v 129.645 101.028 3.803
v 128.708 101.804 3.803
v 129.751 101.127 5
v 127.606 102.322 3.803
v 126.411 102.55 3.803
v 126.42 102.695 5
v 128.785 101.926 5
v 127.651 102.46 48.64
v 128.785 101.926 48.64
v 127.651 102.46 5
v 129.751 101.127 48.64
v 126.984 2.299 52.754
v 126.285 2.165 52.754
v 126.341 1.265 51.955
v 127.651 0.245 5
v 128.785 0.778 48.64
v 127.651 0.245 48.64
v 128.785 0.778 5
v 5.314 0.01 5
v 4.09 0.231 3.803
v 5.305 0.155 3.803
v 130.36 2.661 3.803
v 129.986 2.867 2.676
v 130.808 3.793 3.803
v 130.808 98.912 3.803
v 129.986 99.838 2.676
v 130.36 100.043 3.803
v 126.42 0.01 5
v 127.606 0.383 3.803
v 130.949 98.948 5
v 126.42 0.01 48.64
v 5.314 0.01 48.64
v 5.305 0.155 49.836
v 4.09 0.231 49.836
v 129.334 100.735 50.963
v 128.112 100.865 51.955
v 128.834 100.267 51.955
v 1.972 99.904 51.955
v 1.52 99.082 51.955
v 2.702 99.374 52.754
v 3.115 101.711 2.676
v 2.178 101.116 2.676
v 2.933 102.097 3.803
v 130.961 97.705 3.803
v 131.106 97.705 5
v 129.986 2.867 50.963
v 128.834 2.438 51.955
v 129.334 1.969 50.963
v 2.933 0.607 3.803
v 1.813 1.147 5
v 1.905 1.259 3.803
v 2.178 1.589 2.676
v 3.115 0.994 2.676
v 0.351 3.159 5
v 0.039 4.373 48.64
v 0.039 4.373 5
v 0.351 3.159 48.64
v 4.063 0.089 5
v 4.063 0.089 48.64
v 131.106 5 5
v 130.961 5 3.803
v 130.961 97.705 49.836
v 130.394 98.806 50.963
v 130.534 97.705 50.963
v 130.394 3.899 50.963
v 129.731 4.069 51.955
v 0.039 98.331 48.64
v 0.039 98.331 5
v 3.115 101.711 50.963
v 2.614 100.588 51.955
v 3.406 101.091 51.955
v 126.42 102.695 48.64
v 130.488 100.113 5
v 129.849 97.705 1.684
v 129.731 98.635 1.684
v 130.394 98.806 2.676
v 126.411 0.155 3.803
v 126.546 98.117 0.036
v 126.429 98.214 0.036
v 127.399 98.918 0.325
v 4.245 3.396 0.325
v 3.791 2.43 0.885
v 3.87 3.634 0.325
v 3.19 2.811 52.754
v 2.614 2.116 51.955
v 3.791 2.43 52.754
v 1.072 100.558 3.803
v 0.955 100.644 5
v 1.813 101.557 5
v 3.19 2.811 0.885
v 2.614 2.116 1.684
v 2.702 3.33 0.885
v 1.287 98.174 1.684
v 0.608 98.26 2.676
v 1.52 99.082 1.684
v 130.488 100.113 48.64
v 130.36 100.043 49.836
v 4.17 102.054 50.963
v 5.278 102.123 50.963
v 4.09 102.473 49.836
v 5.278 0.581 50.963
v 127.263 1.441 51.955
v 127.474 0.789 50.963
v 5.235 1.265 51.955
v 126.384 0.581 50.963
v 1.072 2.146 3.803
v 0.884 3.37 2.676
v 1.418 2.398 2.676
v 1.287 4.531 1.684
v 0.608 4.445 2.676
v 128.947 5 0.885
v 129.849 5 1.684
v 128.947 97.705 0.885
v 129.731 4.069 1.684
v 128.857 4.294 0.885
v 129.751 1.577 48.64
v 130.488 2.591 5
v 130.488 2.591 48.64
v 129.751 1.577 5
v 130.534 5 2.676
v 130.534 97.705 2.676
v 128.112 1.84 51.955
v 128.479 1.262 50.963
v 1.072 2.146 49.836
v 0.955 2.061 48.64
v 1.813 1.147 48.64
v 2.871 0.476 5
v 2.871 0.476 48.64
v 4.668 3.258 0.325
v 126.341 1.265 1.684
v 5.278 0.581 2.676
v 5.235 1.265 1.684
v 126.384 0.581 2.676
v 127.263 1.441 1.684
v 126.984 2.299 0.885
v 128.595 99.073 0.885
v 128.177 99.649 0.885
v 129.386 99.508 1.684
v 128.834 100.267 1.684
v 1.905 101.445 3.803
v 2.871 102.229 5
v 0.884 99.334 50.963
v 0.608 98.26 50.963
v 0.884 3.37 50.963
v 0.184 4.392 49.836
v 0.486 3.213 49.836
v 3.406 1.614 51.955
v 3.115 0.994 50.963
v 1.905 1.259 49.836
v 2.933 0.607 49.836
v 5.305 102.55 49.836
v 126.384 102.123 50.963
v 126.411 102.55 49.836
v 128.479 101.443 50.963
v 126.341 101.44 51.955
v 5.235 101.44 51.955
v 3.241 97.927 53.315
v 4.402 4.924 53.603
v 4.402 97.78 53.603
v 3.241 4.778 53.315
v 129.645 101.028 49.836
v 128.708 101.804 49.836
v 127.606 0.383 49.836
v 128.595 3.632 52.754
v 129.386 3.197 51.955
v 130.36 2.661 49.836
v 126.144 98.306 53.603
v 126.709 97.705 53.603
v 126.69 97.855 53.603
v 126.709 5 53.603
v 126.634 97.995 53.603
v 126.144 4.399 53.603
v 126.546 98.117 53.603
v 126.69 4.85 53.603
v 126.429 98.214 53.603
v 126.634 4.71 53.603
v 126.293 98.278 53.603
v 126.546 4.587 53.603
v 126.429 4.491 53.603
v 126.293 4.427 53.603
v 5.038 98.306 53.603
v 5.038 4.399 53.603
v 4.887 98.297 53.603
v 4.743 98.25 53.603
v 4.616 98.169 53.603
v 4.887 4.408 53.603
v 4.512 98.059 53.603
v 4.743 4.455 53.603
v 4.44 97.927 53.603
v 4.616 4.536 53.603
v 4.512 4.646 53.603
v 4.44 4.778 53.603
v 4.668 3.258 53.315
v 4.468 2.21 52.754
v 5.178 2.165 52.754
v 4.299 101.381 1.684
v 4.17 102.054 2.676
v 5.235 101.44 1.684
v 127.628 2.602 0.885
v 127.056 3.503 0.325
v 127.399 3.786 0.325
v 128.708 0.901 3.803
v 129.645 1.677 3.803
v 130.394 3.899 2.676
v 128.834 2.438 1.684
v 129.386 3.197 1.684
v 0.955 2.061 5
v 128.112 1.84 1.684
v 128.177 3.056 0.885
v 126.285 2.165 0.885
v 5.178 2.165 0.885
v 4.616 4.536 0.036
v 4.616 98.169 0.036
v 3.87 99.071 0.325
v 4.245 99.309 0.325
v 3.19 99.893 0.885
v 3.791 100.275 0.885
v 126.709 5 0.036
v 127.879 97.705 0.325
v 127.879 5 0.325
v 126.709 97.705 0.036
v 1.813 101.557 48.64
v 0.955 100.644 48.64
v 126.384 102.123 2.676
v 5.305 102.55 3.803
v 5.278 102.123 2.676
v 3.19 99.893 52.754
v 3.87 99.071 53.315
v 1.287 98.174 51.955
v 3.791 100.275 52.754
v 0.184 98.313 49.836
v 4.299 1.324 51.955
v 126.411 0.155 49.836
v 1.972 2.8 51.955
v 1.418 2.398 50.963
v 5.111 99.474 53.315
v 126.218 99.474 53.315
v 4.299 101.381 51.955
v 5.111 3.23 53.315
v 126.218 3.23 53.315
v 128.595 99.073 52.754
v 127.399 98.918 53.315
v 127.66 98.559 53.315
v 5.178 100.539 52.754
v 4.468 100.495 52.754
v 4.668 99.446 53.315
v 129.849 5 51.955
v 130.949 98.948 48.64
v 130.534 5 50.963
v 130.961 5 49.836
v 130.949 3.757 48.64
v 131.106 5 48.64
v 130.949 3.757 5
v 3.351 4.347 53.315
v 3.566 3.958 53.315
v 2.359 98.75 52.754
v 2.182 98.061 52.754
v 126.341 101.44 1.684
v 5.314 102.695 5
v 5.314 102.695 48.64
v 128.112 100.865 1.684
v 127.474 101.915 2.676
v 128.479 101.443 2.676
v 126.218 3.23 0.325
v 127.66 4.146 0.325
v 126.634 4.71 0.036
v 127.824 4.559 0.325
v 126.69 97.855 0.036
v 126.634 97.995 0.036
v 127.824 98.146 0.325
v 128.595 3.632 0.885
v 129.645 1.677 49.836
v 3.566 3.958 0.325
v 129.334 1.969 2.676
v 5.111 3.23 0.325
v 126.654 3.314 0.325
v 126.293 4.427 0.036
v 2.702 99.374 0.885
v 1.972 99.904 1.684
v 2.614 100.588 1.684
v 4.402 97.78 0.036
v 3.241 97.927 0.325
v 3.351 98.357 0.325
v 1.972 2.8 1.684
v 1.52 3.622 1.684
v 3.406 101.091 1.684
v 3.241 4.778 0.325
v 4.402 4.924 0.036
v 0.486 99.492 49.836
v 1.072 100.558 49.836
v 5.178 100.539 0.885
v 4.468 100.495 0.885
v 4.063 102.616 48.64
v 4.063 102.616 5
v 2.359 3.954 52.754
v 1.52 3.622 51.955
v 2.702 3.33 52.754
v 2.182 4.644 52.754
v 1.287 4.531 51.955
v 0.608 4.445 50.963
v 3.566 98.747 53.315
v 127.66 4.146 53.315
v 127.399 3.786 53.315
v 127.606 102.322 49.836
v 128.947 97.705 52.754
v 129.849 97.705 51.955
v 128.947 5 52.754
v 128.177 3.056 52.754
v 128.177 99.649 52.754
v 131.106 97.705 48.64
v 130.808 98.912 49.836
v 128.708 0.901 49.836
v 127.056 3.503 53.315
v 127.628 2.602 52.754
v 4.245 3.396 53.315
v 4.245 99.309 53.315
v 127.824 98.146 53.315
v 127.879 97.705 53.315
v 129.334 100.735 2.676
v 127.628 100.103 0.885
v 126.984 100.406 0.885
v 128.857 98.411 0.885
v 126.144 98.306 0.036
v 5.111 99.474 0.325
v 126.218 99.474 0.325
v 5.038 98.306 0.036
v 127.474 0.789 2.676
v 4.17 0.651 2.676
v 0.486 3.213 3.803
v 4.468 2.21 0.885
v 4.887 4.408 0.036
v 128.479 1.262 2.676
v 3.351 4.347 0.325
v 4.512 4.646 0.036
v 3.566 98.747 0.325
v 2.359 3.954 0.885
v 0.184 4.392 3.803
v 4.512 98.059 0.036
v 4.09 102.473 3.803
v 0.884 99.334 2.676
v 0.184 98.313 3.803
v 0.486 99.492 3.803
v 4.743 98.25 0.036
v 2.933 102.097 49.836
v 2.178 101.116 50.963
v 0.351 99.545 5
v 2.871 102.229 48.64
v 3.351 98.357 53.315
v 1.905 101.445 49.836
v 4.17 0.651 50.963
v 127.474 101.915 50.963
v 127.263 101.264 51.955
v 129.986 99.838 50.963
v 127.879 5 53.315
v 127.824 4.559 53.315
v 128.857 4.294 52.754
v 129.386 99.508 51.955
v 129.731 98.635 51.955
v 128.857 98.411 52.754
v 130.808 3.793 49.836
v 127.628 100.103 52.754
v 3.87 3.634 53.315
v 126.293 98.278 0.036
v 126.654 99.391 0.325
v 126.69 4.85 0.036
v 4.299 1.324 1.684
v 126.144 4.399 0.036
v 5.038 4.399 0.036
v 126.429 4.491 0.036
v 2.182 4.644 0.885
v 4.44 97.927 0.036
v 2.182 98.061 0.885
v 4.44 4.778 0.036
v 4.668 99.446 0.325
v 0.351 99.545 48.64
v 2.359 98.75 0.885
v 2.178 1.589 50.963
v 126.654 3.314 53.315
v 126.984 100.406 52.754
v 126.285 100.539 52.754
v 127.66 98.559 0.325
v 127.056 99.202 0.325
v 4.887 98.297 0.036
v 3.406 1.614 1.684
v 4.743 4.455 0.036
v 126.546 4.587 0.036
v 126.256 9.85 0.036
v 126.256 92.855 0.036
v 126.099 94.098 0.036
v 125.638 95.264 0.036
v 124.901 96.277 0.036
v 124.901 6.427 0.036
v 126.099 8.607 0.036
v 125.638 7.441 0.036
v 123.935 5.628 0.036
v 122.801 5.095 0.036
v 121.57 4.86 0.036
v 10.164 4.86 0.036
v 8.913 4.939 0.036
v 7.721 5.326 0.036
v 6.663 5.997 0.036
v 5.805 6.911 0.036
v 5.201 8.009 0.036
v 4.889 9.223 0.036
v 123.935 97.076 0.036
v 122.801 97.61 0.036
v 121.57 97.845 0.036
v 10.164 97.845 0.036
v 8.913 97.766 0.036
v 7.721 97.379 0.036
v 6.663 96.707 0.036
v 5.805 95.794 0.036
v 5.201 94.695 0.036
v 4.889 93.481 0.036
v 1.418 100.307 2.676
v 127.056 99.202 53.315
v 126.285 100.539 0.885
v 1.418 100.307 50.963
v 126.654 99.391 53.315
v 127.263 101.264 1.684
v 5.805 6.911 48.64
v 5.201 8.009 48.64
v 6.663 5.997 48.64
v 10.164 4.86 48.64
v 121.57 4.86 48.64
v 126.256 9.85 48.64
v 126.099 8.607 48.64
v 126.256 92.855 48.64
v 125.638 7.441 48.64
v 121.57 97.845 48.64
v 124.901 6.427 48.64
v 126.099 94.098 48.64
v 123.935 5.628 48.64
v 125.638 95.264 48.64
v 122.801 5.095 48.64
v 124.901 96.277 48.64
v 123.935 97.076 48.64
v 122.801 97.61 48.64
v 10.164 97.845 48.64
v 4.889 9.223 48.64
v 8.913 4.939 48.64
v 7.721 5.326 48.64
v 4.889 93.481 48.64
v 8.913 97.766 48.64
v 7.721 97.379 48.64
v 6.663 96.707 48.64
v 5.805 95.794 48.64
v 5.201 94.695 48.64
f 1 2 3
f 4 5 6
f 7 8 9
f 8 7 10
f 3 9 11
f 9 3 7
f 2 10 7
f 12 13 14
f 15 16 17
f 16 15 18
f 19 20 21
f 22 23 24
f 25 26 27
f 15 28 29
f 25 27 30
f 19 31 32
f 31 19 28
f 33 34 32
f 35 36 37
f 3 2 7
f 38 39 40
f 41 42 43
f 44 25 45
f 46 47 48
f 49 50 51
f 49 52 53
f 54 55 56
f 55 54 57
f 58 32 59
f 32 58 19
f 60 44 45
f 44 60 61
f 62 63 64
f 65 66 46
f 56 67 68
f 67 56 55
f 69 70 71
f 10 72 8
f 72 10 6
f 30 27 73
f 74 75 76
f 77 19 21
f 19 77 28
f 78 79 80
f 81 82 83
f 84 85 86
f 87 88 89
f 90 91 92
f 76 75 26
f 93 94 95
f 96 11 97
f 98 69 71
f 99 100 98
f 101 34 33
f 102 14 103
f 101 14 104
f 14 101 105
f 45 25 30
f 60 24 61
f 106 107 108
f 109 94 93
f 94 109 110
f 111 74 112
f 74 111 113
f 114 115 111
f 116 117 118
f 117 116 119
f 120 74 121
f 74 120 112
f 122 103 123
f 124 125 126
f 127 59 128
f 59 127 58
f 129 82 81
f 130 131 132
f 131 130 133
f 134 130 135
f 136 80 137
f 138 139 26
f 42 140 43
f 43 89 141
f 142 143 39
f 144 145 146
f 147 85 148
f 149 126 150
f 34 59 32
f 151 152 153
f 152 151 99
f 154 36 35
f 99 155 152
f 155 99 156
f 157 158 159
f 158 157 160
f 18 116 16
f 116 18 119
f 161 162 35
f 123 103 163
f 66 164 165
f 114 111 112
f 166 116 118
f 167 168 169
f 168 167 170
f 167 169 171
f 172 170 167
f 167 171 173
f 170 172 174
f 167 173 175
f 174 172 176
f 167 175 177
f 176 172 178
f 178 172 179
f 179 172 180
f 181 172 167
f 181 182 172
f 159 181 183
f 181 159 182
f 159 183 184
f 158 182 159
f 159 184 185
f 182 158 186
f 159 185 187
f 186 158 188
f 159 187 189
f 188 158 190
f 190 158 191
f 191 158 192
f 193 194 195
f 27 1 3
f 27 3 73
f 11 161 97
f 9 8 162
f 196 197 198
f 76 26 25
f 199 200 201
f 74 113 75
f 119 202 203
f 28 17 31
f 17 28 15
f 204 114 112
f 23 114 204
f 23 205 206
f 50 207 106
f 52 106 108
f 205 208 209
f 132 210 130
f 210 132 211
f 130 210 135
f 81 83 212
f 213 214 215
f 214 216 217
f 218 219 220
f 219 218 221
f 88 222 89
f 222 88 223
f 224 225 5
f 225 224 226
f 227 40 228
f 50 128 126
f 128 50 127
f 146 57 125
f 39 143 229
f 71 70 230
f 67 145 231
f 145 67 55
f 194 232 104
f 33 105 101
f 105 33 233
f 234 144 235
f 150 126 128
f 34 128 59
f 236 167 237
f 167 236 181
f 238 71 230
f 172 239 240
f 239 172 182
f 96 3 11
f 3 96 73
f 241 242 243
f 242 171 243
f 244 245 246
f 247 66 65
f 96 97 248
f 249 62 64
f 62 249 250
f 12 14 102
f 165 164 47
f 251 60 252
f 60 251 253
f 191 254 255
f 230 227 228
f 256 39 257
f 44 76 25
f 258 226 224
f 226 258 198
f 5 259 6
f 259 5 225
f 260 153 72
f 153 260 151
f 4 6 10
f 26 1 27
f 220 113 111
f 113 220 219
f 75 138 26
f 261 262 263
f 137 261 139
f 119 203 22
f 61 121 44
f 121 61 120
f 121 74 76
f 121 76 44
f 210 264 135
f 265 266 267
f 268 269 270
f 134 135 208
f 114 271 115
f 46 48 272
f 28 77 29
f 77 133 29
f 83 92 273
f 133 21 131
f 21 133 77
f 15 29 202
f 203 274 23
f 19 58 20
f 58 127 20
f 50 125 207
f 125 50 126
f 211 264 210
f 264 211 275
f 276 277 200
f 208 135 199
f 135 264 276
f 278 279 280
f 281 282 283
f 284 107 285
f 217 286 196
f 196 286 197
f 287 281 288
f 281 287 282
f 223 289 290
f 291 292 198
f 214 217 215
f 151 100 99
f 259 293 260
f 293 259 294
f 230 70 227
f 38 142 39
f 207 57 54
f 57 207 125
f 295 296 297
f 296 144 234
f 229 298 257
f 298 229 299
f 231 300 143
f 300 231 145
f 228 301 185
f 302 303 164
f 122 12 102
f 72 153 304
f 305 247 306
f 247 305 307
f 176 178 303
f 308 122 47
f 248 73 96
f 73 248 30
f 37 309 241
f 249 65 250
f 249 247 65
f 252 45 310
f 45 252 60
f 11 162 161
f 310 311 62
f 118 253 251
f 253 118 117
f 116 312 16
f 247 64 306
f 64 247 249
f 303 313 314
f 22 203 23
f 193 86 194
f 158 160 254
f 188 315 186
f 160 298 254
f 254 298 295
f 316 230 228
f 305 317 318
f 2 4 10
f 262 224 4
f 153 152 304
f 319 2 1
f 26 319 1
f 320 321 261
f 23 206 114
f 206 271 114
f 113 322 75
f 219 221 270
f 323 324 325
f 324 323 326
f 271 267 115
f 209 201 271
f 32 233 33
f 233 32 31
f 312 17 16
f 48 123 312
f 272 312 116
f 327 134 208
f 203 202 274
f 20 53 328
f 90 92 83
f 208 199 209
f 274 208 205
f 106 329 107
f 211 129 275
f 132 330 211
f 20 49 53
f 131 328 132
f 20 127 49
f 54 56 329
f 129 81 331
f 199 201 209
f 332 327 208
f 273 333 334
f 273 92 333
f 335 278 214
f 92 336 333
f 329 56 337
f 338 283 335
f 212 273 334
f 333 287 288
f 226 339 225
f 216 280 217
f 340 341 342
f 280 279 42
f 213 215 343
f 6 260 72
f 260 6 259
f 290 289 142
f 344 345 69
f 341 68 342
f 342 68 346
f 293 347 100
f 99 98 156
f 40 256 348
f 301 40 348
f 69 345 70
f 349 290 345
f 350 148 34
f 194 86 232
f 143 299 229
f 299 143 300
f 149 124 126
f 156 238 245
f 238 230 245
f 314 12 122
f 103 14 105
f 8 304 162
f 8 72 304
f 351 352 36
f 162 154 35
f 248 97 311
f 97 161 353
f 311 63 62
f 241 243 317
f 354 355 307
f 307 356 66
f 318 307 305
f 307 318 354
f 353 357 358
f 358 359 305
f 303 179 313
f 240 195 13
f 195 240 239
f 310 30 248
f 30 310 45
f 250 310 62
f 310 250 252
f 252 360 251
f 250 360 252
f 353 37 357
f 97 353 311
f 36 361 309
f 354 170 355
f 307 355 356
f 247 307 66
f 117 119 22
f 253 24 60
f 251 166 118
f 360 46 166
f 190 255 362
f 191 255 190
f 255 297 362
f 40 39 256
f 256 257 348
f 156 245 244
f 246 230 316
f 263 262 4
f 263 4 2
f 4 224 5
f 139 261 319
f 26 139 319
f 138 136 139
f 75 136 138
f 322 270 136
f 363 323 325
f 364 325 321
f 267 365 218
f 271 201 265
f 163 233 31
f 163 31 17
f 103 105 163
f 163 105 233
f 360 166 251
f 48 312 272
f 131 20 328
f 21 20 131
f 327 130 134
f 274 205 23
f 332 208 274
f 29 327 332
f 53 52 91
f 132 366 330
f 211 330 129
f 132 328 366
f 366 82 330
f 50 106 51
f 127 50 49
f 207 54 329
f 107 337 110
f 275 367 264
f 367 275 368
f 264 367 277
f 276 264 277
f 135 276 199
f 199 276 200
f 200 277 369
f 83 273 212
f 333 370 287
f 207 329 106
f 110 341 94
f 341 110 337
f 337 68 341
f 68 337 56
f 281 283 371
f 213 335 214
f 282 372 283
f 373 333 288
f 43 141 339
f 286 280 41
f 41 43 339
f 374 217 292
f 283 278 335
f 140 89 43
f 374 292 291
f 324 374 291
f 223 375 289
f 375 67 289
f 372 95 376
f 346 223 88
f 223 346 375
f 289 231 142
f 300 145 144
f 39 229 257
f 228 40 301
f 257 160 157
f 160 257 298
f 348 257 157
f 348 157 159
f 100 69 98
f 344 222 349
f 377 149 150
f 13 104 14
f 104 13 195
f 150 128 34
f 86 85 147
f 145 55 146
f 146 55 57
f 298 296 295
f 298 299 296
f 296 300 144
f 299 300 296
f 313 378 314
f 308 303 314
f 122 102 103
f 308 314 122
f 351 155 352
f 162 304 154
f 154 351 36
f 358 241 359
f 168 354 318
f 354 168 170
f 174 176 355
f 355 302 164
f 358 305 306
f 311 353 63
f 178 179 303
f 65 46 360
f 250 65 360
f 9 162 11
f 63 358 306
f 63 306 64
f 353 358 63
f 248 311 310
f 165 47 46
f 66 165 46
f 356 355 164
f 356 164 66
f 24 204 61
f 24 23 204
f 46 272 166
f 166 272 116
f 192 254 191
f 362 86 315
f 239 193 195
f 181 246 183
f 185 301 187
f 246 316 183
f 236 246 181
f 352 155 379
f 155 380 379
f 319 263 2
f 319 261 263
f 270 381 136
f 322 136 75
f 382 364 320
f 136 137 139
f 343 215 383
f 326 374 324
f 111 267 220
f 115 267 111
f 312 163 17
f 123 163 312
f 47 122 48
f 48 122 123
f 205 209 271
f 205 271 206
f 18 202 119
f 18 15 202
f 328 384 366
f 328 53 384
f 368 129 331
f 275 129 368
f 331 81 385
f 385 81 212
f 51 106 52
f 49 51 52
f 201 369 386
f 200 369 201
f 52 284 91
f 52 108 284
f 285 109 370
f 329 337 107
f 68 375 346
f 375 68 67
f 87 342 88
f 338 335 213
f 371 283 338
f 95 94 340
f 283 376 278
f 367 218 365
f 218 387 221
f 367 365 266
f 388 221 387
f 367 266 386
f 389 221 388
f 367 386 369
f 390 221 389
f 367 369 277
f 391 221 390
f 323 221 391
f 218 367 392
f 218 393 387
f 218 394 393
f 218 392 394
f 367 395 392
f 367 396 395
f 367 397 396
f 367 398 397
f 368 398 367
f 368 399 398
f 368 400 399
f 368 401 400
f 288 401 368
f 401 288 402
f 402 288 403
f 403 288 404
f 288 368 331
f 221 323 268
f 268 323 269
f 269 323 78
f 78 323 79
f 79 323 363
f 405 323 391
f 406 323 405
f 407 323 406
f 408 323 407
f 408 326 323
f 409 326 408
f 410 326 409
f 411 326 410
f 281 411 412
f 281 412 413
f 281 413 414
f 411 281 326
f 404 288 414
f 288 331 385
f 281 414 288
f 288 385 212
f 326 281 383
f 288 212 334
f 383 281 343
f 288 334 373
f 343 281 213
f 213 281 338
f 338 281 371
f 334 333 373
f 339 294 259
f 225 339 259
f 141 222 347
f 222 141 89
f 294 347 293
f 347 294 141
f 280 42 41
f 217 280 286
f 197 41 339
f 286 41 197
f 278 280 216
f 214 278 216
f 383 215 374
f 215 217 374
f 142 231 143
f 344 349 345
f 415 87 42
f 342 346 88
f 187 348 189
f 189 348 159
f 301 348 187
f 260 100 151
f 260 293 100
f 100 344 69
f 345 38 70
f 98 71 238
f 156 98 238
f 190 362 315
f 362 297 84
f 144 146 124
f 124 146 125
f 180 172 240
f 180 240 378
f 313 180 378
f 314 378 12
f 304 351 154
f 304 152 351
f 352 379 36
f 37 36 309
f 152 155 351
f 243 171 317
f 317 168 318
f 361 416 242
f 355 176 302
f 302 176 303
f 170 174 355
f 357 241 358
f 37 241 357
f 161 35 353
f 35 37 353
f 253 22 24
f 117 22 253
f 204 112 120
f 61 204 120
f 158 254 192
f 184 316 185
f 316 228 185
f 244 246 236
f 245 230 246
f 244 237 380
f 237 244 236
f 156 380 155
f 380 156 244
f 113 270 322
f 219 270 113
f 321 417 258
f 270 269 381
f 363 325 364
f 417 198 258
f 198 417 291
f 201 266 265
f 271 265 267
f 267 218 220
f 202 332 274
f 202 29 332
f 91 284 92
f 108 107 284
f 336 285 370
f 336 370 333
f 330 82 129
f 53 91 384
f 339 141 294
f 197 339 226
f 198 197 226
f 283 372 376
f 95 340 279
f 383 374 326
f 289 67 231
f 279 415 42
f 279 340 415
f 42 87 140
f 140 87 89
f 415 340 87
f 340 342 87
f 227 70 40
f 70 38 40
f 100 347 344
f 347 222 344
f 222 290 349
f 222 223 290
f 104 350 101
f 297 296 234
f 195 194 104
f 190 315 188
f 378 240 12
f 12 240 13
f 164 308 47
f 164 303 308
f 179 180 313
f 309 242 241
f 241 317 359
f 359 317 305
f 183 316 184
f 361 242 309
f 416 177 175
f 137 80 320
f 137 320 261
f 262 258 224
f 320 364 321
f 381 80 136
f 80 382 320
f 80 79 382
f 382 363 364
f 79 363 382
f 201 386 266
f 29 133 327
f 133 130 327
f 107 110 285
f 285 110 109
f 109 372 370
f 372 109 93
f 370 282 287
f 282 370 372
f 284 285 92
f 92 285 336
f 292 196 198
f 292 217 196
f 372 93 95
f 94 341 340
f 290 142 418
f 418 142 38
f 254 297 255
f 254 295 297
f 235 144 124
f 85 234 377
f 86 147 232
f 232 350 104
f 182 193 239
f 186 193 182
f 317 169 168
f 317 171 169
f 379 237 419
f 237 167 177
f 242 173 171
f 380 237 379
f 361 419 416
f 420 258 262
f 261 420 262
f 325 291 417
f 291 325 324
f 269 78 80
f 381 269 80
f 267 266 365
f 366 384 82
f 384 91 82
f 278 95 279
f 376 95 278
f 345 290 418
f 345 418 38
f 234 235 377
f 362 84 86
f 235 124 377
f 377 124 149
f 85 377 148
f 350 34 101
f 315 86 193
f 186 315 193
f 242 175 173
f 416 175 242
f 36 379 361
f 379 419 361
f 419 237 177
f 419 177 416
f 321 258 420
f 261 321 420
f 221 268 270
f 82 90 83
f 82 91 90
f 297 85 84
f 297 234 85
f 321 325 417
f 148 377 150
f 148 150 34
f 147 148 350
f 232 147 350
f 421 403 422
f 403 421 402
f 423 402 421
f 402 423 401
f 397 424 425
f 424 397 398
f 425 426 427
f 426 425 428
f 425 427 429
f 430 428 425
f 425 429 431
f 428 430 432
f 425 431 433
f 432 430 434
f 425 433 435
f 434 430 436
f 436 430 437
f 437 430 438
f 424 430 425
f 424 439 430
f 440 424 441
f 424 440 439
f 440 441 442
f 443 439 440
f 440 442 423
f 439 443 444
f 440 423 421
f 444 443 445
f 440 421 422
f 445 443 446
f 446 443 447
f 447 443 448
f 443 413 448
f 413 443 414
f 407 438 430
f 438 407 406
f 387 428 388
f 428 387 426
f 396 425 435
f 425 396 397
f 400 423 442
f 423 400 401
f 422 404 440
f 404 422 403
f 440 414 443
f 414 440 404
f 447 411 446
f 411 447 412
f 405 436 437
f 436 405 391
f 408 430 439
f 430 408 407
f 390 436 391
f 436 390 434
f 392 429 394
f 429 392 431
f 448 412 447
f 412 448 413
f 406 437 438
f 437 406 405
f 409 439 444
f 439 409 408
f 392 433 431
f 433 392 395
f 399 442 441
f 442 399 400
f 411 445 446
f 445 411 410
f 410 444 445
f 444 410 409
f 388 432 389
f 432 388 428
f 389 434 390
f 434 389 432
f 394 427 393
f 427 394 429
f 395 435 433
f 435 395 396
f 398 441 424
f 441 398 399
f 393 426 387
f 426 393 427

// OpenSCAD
// file: box.scad
module box(w,d,h,r){
    $fn=25;
    translate([r,r,r]){
        minkowski(){
            sphere(r);
            cube([w-(2*r),d-(2*r),h-(2*r)]);
        }
    }
}

//box(container_solid_width, container_solid_depth, container_solid_height, box_edge_radius);
// file: parameters.scad
$fn=25;
wall_thickness=10;
inner_spacing=2.5;
base_thickness=5;//wall_thickness;
rows=3;
cols=4;
lid_inset_width=wall_thickness/2;
lid_inset_tolerance=0.15;

lid_inset_adjusted = lid_inset_width- lid_inset_tolerance;
pyramid_width=25.7; 
pyramid_height=43.3;
pyramid_edge_radius=1.5;
box_edge_radius=5;

//actual denotes measured amounts; this to to gauge tolerances.
pyramid_width_actual = 25.5;//25.2
pyramid_tolerance = pyramid_width /pyramid_width_actual;
//pyramid_height_diff=1.3;
//pyramid_height_diff+pyramid_height;

//pyramid_tolerance=(pyramid_height_actual)/pyramid_height;
pyramid_width_adjusted = (pyramid_width * pyramid_tolerance);
pyramid_height_adjusted = (pyramid_height * pyramid_tolerance);


echo(pyramid_tolerance);
//derived parameters: 

container_width = (wall_thickness*2) +
(cols * pyramid_width * pyramid_tolerance) +
((cols - 1) * inner_spacing);

container_solid_width = container_width -
(box_edge_radius*2);

container_depth = (wall_thickness*2) +
(rows * pyramid_width * pyramid_tolerance) +
((rows - 1) * inner_spacing);

container_solid_depth = container_depth -
(box_edge_radius*2);

container_height = (pyramid_height * pyramid_tolerance) + 
    base_thickness;

container_solid_height = container_height -
    (box_edge_radius*2);

container_height_total=container_height+base_thickness;

lid_inset_height=container_height;
// main file
include <parameters.scad>;
include <box.scad>;
$fn=25;

difference(){
box(container_width, container_depth, container_height_total, box_edge_radius);

linear_extrude(container_height){      
translate([box_edge_radius, box_edge_radius, 0]){
hull(){
        translate([lid_inset_adjusted, lid_inset_adjusted])circle(box_edge_radius);
        translate([container_solid_width-lid_inset_adjusted,lid_inset_adjusted])circle(box_edge_radius);
        translate([lid_inset_adjusted,container_solid_depth-lid_inset_adjusted])circle(box_edge_radius);
        translate([container_solid_width-lid_inset_adjusted,container_solid_depth-lid_inset_adjusted])circle(box_edge_radius);
    }

}
}
             }  
        /*
difference(){
    
    union(){
    
    linear_extrude(lid_inset_height){
    hull(){translate([lid_inset, lid_inset]){
                    circle(box_edge_radius);
                    translate([container_solid_width,0])circle(box_edge_radius);
                    translate([0,container_solid_depth])circle(box_edge_radius);
                    translate([container_solid_width,container_solid_depth])circle(box_edge_radius);
                }
            }
        }
        
//rounded top part
translate([0,0,base_thickness-box_edge_radius]){
hull(){
    translate([lid_inset, lid_inset]){
    
        sphere(box_edge_radius);
                    translate([container_solid_width,0])sphere(box_edge_radius);
                    translate([0,container_solid_depth])sphere(box_edge_radius);
                    translate([container_solid_width,container_solid_depth])sphere(box_edge_radius);
                }
            }
        }
    
        
    }
    
    
    linear_extrude(lid_inset_height){
    hull(){
                translate([box_edge_radius,box_edge_radius]){
                    translate([lid_inset-lid_tolerance,lid_inset-lid_tolerance])circle(box_edge_radius);
                    translate([container_solid_width-lid_inset+lid_tolerance,lid_inset-lid_tolerance])circle(box_edge_radius);
                    translate([lid_inset-lid_tolerance,container_solid_depth-lid_inset+lid_tolerance])circle(box_edge_radius);
                    translate([container_solid_width-lid_inset+lid_tolerance,container_solid_depth-lid_inset+lid_tolerance])circle(box_edge_radius);
                }
            }
        }
}
*/
